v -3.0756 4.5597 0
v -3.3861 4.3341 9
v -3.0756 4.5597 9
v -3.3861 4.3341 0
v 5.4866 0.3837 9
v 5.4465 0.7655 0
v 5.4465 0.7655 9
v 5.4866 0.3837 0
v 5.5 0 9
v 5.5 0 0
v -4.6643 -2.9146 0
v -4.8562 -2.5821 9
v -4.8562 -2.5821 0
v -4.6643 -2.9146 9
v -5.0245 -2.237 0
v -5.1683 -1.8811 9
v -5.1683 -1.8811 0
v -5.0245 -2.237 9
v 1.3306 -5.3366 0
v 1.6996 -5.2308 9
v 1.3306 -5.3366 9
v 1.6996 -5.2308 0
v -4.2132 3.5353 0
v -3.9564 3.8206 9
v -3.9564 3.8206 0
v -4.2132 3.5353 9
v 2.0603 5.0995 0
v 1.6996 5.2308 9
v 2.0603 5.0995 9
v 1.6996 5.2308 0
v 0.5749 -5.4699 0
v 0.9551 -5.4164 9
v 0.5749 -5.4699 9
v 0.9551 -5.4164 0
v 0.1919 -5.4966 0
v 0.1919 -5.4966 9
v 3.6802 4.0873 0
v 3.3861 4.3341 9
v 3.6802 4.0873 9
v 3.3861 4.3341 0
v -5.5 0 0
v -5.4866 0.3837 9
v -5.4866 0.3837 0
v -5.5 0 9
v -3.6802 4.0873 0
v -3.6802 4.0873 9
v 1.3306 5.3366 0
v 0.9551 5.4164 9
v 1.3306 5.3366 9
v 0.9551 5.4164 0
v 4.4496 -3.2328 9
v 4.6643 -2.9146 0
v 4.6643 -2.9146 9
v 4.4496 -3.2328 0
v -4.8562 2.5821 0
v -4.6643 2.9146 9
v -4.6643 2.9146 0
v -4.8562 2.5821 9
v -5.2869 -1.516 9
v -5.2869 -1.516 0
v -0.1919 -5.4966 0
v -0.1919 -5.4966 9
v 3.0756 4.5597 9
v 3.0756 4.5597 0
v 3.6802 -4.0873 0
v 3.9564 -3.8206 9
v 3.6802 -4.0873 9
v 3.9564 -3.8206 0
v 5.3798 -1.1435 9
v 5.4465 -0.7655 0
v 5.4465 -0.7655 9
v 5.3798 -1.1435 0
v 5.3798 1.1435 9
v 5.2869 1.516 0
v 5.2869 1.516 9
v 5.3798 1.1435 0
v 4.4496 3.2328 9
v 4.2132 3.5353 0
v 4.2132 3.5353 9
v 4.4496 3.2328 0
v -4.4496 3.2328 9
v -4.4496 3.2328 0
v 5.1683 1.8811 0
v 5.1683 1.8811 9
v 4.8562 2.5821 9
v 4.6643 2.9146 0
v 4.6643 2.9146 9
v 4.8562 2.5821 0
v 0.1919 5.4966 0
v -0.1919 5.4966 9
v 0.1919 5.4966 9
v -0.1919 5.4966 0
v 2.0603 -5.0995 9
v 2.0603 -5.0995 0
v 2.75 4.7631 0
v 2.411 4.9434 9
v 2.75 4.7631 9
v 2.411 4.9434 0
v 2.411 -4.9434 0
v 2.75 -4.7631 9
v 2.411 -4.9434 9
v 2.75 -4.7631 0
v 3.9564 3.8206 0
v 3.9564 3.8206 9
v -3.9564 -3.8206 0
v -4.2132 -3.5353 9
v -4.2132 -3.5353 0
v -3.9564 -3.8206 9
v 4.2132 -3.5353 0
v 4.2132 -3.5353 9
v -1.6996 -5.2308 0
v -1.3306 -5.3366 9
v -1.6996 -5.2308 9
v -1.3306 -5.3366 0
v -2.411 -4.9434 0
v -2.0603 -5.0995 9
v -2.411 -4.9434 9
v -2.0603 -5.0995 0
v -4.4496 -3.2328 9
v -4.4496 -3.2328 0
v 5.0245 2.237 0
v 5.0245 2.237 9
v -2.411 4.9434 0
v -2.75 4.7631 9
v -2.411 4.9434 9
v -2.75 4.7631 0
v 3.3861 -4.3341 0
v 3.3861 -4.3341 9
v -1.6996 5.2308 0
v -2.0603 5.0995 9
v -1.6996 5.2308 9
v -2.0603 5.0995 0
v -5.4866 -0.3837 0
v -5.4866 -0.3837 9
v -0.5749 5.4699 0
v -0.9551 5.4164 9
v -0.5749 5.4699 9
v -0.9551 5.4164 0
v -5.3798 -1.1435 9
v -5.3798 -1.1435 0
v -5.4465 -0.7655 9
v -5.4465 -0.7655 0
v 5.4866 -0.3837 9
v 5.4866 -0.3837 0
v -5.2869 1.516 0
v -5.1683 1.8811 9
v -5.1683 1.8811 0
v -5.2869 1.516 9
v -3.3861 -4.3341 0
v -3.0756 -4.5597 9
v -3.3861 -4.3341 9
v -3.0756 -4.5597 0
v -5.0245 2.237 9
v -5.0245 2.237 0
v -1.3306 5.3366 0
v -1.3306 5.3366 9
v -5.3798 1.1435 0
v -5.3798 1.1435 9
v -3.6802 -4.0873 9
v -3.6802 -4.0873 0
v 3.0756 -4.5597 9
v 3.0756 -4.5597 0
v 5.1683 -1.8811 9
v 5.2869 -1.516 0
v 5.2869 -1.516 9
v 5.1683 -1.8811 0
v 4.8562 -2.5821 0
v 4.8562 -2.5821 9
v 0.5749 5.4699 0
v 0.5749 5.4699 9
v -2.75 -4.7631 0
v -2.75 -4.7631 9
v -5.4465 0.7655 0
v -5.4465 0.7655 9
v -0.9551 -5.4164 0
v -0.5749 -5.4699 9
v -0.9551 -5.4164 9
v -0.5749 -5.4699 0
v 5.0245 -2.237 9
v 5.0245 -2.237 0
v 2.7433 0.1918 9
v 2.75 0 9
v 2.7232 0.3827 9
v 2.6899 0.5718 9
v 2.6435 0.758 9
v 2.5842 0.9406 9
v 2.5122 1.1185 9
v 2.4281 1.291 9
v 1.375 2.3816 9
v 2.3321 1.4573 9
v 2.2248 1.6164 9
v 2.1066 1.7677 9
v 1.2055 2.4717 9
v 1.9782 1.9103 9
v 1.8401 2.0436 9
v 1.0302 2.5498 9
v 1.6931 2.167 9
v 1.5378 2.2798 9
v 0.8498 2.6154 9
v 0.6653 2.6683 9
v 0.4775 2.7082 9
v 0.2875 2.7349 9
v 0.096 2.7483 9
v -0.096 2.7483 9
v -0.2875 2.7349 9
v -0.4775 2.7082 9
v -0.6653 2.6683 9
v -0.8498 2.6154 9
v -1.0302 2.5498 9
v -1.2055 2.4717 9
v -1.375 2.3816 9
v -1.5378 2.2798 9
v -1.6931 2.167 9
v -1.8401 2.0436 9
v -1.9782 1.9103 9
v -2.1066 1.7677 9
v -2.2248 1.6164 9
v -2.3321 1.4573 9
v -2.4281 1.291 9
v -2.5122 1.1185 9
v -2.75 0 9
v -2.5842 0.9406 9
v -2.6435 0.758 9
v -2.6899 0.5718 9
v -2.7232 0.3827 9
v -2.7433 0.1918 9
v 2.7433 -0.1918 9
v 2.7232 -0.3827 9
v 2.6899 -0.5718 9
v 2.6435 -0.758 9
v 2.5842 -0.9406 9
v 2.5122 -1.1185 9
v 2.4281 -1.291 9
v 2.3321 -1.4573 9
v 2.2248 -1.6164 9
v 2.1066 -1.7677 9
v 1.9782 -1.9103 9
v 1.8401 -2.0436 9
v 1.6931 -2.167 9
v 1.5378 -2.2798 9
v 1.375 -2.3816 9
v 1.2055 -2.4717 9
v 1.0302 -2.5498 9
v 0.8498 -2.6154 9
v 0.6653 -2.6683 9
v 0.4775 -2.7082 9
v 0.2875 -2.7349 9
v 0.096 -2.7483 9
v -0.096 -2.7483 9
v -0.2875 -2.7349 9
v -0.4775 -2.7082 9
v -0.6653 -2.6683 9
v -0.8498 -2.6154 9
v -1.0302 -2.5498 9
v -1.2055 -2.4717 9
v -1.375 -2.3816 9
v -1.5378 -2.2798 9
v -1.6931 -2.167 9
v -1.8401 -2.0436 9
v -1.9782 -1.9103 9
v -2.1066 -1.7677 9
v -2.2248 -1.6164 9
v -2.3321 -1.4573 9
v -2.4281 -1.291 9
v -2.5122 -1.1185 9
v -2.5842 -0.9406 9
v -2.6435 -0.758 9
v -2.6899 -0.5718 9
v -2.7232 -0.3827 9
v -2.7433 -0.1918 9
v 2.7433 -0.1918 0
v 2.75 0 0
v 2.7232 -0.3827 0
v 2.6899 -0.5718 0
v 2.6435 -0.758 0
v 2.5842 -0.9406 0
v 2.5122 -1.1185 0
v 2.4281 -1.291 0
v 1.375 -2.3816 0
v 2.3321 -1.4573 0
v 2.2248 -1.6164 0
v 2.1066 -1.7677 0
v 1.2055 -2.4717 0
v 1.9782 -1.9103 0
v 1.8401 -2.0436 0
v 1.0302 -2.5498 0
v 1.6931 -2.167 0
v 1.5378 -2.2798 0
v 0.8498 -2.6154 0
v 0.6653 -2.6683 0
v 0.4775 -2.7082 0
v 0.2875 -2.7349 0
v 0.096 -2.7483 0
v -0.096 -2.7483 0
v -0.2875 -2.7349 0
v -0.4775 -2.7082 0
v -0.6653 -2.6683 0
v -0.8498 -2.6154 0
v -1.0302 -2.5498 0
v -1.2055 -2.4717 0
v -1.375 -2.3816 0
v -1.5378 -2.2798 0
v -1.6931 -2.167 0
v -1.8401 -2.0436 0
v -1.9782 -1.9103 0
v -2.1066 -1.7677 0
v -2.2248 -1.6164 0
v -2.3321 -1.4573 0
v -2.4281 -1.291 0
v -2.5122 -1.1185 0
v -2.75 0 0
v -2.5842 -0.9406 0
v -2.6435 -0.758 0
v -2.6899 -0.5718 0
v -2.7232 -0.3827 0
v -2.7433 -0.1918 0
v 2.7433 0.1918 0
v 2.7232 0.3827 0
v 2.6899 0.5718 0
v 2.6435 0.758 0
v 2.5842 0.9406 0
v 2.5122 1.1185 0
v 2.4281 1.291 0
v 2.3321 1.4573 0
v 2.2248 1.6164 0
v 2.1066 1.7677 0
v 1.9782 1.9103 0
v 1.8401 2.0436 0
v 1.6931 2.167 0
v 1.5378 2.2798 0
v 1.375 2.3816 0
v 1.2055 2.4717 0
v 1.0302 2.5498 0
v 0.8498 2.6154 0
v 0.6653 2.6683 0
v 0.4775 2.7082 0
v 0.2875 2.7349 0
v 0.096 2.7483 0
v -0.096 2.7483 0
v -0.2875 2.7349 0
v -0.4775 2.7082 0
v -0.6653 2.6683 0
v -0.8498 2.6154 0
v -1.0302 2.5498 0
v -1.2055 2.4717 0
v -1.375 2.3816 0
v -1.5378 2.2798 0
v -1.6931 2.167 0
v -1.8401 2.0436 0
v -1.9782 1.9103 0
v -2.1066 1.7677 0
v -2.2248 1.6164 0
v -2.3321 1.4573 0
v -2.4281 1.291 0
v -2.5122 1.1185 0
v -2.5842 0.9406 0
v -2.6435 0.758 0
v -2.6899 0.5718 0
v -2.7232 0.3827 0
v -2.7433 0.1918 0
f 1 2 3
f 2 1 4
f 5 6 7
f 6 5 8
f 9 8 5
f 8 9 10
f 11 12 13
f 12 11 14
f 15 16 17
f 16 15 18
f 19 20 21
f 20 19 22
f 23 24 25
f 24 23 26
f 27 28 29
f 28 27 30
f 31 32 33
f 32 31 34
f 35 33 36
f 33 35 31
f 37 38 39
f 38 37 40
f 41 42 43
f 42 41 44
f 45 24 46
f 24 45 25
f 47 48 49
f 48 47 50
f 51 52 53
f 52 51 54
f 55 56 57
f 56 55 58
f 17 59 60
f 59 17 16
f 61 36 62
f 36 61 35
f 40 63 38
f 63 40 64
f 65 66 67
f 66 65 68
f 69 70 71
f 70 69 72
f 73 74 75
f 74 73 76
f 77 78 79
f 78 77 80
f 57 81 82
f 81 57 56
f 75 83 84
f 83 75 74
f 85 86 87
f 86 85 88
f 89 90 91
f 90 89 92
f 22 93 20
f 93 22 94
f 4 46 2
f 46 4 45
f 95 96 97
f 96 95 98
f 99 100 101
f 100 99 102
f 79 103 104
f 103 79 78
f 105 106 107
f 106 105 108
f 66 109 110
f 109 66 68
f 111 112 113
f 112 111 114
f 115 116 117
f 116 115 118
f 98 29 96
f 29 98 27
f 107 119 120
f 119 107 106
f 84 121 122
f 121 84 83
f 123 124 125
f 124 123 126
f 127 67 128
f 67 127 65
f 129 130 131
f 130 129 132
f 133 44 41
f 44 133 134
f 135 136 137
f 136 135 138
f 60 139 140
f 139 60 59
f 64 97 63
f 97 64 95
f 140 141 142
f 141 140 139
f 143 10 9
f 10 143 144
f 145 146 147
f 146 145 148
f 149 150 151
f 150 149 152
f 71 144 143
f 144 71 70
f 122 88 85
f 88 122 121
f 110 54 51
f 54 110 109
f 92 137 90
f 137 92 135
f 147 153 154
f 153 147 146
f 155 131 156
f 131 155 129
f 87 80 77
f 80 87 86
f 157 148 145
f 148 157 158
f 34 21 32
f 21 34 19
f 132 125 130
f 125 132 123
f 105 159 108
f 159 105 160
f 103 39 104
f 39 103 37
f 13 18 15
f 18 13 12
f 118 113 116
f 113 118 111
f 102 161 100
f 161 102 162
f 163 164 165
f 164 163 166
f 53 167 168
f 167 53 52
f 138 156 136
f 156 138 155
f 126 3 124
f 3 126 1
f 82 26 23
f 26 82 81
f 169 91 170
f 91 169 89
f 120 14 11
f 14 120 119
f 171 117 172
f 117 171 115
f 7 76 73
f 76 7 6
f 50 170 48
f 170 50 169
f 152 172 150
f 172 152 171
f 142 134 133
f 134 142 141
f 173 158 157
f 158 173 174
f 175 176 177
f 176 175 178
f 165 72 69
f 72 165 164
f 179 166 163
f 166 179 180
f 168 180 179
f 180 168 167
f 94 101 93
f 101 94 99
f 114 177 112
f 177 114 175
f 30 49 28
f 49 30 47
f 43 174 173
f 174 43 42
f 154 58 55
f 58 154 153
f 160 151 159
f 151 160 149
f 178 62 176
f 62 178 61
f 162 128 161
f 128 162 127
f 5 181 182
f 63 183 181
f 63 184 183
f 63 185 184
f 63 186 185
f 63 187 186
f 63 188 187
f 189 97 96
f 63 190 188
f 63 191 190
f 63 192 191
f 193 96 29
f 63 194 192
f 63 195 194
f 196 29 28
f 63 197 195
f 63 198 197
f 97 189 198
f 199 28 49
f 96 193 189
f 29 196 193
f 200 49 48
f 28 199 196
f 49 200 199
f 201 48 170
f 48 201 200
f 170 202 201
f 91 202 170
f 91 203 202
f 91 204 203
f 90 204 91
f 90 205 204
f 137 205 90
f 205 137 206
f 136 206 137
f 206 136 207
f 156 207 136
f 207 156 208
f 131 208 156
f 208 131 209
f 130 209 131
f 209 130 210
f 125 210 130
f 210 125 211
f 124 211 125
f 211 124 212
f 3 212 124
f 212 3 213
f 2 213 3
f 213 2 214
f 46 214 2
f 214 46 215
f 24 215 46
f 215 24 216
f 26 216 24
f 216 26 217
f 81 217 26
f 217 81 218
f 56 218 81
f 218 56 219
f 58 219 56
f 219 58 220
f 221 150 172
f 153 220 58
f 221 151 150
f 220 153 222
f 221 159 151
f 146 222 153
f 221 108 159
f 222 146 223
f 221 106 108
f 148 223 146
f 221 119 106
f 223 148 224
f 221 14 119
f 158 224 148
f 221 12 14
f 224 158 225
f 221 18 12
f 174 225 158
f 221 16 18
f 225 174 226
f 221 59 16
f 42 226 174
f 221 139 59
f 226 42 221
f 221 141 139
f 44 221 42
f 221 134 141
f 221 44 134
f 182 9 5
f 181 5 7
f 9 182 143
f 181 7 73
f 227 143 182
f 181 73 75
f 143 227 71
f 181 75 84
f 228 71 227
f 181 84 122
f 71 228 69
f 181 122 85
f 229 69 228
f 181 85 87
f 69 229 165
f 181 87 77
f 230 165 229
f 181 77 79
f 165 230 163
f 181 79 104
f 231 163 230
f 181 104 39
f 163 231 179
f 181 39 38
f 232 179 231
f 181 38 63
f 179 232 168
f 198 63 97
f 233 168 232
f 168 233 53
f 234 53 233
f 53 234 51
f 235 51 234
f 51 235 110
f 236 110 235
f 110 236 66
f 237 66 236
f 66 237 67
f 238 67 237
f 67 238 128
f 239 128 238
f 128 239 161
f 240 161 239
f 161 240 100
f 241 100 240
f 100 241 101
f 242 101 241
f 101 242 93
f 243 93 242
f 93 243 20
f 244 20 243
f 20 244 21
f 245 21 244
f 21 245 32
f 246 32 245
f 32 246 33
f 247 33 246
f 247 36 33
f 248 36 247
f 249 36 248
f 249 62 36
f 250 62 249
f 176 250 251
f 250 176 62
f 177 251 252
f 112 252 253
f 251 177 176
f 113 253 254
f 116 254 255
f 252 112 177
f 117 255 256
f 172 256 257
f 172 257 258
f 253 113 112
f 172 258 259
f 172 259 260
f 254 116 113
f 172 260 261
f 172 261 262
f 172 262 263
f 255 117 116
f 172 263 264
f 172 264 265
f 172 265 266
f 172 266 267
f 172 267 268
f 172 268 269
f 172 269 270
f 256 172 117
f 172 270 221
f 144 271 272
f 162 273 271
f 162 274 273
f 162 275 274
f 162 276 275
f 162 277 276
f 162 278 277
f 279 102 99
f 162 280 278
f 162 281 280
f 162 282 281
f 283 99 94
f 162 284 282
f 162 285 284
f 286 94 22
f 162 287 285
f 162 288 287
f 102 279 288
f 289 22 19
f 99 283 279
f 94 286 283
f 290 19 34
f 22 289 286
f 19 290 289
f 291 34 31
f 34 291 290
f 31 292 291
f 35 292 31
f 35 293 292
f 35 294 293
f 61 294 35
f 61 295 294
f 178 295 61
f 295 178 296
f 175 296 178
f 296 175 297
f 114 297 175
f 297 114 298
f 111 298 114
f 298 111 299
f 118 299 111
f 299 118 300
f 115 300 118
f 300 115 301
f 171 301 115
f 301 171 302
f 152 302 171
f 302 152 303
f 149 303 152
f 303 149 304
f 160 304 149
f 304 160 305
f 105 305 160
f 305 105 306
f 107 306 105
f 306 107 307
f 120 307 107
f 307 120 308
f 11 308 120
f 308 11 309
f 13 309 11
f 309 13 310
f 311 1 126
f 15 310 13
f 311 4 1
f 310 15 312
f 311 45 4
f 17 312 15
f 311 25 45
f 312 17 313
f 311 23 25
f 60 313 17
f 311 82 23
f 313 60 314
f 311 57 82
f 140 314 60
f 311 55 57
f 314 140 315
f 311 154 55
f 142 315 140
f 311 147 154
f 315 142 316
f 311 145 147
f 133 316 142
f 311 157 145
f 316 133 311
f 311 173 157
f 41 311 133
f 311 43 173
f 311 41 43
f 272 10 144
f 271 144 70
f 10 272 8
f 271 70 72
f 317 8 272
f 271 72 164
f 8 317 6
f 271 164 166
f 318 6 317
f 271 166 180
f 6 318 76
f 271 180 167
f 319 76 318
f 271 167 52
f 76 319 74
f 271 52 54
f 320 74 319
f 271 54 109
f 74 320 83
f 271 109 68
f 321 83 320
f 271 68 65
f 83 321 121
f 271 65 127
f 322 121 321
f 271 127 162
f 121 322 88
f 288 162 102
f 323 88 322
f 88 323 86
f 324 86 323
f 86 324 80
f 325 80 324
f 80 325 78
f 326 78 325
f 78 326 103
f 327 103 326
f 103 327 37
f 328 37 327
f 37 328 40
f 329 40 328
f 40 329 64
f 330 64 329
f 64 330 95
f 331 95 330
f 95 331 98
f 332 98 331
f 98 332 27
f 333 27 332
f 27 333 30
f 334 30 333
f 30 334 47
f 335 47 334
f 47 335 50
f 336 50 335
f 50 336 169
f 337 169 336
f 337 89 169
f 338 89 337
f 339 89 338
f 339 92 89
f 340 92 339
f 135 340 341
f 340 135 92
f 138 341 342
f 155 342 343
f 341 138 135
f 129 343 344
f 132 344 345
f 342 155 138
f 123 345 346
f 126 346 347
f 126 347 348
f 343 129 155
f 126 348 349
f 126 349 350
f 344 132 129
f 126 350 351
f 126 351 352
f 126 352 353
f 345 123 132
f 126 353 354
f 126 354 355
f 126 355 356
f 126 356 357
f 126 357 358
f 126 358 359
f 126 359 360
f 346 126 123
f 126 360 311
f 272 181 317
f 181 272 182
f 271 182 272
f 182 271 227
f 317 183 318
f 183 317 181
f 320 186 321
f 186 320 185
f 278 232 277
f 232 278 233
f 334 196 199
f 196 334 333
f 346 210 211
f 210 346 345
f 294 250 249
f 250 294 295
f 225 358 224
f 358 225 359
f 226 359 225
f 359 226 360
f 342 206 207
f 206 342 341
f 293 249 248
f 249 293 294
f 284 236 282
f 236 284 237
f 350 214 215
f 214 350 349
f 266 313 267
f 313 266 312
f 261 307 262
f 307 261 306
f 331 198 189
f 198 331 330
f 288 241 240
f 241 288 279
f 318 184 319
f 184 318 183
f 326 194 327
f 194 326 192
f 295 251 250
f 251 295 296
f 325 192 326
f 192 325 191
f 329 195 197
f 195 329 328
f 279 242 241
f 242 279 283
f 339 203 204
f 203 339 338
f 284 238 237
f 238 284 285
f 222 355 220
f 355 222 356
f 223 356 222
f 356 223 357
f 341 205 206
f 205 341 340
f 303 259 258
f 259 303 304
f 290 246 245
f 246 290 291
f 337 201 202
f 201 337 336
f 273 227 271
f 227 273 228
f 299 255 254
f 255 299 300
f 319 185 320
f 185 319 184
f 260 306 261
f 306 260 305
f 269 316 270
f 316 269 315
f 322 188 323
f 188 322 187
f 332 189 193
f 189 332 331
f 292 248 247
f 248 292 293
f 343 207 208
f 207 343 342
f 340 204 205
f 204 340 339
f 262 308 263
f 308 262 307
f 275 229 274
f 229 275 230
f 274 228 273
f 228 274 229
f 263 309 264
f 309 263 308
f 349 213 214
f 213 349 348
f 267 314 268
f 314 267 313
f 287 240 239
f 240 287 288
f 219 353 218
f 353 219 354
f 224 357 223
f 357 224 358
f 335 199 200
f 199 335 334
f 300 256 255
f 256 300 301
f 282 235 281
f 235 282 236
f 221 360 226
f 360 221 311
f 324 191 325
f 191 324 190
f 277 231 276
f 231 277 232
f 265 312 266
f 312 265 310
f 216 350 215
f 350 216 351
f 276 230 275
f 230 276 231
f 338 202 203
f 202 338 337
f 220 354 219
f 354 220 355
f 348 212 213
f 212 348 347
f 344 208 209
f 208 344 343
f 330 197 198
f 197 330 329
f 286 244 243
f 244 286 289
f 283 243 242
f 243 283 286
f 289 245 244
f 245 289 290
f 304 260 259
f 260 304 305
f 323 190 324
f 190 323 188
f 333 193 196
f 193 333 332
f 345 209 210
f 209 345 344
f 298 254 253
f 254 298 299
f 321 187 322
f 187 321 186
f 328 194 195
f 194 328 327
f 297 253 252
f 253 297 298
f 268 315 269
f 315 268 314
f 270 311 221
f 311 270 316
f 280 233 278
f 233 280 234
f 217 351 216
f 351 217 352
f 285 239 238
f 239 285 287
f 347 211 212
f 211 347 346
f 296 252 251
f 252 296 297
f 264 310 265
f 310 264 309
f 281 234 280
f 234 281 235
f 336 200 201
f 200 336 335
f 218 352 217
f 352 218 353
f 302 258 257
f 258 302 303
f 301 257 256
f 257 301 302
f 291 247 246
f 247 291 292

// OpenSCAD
$fn=90;

difference() {
    cylinder(d=11,9);
    cylinder(d=5.5,9);
}


        
